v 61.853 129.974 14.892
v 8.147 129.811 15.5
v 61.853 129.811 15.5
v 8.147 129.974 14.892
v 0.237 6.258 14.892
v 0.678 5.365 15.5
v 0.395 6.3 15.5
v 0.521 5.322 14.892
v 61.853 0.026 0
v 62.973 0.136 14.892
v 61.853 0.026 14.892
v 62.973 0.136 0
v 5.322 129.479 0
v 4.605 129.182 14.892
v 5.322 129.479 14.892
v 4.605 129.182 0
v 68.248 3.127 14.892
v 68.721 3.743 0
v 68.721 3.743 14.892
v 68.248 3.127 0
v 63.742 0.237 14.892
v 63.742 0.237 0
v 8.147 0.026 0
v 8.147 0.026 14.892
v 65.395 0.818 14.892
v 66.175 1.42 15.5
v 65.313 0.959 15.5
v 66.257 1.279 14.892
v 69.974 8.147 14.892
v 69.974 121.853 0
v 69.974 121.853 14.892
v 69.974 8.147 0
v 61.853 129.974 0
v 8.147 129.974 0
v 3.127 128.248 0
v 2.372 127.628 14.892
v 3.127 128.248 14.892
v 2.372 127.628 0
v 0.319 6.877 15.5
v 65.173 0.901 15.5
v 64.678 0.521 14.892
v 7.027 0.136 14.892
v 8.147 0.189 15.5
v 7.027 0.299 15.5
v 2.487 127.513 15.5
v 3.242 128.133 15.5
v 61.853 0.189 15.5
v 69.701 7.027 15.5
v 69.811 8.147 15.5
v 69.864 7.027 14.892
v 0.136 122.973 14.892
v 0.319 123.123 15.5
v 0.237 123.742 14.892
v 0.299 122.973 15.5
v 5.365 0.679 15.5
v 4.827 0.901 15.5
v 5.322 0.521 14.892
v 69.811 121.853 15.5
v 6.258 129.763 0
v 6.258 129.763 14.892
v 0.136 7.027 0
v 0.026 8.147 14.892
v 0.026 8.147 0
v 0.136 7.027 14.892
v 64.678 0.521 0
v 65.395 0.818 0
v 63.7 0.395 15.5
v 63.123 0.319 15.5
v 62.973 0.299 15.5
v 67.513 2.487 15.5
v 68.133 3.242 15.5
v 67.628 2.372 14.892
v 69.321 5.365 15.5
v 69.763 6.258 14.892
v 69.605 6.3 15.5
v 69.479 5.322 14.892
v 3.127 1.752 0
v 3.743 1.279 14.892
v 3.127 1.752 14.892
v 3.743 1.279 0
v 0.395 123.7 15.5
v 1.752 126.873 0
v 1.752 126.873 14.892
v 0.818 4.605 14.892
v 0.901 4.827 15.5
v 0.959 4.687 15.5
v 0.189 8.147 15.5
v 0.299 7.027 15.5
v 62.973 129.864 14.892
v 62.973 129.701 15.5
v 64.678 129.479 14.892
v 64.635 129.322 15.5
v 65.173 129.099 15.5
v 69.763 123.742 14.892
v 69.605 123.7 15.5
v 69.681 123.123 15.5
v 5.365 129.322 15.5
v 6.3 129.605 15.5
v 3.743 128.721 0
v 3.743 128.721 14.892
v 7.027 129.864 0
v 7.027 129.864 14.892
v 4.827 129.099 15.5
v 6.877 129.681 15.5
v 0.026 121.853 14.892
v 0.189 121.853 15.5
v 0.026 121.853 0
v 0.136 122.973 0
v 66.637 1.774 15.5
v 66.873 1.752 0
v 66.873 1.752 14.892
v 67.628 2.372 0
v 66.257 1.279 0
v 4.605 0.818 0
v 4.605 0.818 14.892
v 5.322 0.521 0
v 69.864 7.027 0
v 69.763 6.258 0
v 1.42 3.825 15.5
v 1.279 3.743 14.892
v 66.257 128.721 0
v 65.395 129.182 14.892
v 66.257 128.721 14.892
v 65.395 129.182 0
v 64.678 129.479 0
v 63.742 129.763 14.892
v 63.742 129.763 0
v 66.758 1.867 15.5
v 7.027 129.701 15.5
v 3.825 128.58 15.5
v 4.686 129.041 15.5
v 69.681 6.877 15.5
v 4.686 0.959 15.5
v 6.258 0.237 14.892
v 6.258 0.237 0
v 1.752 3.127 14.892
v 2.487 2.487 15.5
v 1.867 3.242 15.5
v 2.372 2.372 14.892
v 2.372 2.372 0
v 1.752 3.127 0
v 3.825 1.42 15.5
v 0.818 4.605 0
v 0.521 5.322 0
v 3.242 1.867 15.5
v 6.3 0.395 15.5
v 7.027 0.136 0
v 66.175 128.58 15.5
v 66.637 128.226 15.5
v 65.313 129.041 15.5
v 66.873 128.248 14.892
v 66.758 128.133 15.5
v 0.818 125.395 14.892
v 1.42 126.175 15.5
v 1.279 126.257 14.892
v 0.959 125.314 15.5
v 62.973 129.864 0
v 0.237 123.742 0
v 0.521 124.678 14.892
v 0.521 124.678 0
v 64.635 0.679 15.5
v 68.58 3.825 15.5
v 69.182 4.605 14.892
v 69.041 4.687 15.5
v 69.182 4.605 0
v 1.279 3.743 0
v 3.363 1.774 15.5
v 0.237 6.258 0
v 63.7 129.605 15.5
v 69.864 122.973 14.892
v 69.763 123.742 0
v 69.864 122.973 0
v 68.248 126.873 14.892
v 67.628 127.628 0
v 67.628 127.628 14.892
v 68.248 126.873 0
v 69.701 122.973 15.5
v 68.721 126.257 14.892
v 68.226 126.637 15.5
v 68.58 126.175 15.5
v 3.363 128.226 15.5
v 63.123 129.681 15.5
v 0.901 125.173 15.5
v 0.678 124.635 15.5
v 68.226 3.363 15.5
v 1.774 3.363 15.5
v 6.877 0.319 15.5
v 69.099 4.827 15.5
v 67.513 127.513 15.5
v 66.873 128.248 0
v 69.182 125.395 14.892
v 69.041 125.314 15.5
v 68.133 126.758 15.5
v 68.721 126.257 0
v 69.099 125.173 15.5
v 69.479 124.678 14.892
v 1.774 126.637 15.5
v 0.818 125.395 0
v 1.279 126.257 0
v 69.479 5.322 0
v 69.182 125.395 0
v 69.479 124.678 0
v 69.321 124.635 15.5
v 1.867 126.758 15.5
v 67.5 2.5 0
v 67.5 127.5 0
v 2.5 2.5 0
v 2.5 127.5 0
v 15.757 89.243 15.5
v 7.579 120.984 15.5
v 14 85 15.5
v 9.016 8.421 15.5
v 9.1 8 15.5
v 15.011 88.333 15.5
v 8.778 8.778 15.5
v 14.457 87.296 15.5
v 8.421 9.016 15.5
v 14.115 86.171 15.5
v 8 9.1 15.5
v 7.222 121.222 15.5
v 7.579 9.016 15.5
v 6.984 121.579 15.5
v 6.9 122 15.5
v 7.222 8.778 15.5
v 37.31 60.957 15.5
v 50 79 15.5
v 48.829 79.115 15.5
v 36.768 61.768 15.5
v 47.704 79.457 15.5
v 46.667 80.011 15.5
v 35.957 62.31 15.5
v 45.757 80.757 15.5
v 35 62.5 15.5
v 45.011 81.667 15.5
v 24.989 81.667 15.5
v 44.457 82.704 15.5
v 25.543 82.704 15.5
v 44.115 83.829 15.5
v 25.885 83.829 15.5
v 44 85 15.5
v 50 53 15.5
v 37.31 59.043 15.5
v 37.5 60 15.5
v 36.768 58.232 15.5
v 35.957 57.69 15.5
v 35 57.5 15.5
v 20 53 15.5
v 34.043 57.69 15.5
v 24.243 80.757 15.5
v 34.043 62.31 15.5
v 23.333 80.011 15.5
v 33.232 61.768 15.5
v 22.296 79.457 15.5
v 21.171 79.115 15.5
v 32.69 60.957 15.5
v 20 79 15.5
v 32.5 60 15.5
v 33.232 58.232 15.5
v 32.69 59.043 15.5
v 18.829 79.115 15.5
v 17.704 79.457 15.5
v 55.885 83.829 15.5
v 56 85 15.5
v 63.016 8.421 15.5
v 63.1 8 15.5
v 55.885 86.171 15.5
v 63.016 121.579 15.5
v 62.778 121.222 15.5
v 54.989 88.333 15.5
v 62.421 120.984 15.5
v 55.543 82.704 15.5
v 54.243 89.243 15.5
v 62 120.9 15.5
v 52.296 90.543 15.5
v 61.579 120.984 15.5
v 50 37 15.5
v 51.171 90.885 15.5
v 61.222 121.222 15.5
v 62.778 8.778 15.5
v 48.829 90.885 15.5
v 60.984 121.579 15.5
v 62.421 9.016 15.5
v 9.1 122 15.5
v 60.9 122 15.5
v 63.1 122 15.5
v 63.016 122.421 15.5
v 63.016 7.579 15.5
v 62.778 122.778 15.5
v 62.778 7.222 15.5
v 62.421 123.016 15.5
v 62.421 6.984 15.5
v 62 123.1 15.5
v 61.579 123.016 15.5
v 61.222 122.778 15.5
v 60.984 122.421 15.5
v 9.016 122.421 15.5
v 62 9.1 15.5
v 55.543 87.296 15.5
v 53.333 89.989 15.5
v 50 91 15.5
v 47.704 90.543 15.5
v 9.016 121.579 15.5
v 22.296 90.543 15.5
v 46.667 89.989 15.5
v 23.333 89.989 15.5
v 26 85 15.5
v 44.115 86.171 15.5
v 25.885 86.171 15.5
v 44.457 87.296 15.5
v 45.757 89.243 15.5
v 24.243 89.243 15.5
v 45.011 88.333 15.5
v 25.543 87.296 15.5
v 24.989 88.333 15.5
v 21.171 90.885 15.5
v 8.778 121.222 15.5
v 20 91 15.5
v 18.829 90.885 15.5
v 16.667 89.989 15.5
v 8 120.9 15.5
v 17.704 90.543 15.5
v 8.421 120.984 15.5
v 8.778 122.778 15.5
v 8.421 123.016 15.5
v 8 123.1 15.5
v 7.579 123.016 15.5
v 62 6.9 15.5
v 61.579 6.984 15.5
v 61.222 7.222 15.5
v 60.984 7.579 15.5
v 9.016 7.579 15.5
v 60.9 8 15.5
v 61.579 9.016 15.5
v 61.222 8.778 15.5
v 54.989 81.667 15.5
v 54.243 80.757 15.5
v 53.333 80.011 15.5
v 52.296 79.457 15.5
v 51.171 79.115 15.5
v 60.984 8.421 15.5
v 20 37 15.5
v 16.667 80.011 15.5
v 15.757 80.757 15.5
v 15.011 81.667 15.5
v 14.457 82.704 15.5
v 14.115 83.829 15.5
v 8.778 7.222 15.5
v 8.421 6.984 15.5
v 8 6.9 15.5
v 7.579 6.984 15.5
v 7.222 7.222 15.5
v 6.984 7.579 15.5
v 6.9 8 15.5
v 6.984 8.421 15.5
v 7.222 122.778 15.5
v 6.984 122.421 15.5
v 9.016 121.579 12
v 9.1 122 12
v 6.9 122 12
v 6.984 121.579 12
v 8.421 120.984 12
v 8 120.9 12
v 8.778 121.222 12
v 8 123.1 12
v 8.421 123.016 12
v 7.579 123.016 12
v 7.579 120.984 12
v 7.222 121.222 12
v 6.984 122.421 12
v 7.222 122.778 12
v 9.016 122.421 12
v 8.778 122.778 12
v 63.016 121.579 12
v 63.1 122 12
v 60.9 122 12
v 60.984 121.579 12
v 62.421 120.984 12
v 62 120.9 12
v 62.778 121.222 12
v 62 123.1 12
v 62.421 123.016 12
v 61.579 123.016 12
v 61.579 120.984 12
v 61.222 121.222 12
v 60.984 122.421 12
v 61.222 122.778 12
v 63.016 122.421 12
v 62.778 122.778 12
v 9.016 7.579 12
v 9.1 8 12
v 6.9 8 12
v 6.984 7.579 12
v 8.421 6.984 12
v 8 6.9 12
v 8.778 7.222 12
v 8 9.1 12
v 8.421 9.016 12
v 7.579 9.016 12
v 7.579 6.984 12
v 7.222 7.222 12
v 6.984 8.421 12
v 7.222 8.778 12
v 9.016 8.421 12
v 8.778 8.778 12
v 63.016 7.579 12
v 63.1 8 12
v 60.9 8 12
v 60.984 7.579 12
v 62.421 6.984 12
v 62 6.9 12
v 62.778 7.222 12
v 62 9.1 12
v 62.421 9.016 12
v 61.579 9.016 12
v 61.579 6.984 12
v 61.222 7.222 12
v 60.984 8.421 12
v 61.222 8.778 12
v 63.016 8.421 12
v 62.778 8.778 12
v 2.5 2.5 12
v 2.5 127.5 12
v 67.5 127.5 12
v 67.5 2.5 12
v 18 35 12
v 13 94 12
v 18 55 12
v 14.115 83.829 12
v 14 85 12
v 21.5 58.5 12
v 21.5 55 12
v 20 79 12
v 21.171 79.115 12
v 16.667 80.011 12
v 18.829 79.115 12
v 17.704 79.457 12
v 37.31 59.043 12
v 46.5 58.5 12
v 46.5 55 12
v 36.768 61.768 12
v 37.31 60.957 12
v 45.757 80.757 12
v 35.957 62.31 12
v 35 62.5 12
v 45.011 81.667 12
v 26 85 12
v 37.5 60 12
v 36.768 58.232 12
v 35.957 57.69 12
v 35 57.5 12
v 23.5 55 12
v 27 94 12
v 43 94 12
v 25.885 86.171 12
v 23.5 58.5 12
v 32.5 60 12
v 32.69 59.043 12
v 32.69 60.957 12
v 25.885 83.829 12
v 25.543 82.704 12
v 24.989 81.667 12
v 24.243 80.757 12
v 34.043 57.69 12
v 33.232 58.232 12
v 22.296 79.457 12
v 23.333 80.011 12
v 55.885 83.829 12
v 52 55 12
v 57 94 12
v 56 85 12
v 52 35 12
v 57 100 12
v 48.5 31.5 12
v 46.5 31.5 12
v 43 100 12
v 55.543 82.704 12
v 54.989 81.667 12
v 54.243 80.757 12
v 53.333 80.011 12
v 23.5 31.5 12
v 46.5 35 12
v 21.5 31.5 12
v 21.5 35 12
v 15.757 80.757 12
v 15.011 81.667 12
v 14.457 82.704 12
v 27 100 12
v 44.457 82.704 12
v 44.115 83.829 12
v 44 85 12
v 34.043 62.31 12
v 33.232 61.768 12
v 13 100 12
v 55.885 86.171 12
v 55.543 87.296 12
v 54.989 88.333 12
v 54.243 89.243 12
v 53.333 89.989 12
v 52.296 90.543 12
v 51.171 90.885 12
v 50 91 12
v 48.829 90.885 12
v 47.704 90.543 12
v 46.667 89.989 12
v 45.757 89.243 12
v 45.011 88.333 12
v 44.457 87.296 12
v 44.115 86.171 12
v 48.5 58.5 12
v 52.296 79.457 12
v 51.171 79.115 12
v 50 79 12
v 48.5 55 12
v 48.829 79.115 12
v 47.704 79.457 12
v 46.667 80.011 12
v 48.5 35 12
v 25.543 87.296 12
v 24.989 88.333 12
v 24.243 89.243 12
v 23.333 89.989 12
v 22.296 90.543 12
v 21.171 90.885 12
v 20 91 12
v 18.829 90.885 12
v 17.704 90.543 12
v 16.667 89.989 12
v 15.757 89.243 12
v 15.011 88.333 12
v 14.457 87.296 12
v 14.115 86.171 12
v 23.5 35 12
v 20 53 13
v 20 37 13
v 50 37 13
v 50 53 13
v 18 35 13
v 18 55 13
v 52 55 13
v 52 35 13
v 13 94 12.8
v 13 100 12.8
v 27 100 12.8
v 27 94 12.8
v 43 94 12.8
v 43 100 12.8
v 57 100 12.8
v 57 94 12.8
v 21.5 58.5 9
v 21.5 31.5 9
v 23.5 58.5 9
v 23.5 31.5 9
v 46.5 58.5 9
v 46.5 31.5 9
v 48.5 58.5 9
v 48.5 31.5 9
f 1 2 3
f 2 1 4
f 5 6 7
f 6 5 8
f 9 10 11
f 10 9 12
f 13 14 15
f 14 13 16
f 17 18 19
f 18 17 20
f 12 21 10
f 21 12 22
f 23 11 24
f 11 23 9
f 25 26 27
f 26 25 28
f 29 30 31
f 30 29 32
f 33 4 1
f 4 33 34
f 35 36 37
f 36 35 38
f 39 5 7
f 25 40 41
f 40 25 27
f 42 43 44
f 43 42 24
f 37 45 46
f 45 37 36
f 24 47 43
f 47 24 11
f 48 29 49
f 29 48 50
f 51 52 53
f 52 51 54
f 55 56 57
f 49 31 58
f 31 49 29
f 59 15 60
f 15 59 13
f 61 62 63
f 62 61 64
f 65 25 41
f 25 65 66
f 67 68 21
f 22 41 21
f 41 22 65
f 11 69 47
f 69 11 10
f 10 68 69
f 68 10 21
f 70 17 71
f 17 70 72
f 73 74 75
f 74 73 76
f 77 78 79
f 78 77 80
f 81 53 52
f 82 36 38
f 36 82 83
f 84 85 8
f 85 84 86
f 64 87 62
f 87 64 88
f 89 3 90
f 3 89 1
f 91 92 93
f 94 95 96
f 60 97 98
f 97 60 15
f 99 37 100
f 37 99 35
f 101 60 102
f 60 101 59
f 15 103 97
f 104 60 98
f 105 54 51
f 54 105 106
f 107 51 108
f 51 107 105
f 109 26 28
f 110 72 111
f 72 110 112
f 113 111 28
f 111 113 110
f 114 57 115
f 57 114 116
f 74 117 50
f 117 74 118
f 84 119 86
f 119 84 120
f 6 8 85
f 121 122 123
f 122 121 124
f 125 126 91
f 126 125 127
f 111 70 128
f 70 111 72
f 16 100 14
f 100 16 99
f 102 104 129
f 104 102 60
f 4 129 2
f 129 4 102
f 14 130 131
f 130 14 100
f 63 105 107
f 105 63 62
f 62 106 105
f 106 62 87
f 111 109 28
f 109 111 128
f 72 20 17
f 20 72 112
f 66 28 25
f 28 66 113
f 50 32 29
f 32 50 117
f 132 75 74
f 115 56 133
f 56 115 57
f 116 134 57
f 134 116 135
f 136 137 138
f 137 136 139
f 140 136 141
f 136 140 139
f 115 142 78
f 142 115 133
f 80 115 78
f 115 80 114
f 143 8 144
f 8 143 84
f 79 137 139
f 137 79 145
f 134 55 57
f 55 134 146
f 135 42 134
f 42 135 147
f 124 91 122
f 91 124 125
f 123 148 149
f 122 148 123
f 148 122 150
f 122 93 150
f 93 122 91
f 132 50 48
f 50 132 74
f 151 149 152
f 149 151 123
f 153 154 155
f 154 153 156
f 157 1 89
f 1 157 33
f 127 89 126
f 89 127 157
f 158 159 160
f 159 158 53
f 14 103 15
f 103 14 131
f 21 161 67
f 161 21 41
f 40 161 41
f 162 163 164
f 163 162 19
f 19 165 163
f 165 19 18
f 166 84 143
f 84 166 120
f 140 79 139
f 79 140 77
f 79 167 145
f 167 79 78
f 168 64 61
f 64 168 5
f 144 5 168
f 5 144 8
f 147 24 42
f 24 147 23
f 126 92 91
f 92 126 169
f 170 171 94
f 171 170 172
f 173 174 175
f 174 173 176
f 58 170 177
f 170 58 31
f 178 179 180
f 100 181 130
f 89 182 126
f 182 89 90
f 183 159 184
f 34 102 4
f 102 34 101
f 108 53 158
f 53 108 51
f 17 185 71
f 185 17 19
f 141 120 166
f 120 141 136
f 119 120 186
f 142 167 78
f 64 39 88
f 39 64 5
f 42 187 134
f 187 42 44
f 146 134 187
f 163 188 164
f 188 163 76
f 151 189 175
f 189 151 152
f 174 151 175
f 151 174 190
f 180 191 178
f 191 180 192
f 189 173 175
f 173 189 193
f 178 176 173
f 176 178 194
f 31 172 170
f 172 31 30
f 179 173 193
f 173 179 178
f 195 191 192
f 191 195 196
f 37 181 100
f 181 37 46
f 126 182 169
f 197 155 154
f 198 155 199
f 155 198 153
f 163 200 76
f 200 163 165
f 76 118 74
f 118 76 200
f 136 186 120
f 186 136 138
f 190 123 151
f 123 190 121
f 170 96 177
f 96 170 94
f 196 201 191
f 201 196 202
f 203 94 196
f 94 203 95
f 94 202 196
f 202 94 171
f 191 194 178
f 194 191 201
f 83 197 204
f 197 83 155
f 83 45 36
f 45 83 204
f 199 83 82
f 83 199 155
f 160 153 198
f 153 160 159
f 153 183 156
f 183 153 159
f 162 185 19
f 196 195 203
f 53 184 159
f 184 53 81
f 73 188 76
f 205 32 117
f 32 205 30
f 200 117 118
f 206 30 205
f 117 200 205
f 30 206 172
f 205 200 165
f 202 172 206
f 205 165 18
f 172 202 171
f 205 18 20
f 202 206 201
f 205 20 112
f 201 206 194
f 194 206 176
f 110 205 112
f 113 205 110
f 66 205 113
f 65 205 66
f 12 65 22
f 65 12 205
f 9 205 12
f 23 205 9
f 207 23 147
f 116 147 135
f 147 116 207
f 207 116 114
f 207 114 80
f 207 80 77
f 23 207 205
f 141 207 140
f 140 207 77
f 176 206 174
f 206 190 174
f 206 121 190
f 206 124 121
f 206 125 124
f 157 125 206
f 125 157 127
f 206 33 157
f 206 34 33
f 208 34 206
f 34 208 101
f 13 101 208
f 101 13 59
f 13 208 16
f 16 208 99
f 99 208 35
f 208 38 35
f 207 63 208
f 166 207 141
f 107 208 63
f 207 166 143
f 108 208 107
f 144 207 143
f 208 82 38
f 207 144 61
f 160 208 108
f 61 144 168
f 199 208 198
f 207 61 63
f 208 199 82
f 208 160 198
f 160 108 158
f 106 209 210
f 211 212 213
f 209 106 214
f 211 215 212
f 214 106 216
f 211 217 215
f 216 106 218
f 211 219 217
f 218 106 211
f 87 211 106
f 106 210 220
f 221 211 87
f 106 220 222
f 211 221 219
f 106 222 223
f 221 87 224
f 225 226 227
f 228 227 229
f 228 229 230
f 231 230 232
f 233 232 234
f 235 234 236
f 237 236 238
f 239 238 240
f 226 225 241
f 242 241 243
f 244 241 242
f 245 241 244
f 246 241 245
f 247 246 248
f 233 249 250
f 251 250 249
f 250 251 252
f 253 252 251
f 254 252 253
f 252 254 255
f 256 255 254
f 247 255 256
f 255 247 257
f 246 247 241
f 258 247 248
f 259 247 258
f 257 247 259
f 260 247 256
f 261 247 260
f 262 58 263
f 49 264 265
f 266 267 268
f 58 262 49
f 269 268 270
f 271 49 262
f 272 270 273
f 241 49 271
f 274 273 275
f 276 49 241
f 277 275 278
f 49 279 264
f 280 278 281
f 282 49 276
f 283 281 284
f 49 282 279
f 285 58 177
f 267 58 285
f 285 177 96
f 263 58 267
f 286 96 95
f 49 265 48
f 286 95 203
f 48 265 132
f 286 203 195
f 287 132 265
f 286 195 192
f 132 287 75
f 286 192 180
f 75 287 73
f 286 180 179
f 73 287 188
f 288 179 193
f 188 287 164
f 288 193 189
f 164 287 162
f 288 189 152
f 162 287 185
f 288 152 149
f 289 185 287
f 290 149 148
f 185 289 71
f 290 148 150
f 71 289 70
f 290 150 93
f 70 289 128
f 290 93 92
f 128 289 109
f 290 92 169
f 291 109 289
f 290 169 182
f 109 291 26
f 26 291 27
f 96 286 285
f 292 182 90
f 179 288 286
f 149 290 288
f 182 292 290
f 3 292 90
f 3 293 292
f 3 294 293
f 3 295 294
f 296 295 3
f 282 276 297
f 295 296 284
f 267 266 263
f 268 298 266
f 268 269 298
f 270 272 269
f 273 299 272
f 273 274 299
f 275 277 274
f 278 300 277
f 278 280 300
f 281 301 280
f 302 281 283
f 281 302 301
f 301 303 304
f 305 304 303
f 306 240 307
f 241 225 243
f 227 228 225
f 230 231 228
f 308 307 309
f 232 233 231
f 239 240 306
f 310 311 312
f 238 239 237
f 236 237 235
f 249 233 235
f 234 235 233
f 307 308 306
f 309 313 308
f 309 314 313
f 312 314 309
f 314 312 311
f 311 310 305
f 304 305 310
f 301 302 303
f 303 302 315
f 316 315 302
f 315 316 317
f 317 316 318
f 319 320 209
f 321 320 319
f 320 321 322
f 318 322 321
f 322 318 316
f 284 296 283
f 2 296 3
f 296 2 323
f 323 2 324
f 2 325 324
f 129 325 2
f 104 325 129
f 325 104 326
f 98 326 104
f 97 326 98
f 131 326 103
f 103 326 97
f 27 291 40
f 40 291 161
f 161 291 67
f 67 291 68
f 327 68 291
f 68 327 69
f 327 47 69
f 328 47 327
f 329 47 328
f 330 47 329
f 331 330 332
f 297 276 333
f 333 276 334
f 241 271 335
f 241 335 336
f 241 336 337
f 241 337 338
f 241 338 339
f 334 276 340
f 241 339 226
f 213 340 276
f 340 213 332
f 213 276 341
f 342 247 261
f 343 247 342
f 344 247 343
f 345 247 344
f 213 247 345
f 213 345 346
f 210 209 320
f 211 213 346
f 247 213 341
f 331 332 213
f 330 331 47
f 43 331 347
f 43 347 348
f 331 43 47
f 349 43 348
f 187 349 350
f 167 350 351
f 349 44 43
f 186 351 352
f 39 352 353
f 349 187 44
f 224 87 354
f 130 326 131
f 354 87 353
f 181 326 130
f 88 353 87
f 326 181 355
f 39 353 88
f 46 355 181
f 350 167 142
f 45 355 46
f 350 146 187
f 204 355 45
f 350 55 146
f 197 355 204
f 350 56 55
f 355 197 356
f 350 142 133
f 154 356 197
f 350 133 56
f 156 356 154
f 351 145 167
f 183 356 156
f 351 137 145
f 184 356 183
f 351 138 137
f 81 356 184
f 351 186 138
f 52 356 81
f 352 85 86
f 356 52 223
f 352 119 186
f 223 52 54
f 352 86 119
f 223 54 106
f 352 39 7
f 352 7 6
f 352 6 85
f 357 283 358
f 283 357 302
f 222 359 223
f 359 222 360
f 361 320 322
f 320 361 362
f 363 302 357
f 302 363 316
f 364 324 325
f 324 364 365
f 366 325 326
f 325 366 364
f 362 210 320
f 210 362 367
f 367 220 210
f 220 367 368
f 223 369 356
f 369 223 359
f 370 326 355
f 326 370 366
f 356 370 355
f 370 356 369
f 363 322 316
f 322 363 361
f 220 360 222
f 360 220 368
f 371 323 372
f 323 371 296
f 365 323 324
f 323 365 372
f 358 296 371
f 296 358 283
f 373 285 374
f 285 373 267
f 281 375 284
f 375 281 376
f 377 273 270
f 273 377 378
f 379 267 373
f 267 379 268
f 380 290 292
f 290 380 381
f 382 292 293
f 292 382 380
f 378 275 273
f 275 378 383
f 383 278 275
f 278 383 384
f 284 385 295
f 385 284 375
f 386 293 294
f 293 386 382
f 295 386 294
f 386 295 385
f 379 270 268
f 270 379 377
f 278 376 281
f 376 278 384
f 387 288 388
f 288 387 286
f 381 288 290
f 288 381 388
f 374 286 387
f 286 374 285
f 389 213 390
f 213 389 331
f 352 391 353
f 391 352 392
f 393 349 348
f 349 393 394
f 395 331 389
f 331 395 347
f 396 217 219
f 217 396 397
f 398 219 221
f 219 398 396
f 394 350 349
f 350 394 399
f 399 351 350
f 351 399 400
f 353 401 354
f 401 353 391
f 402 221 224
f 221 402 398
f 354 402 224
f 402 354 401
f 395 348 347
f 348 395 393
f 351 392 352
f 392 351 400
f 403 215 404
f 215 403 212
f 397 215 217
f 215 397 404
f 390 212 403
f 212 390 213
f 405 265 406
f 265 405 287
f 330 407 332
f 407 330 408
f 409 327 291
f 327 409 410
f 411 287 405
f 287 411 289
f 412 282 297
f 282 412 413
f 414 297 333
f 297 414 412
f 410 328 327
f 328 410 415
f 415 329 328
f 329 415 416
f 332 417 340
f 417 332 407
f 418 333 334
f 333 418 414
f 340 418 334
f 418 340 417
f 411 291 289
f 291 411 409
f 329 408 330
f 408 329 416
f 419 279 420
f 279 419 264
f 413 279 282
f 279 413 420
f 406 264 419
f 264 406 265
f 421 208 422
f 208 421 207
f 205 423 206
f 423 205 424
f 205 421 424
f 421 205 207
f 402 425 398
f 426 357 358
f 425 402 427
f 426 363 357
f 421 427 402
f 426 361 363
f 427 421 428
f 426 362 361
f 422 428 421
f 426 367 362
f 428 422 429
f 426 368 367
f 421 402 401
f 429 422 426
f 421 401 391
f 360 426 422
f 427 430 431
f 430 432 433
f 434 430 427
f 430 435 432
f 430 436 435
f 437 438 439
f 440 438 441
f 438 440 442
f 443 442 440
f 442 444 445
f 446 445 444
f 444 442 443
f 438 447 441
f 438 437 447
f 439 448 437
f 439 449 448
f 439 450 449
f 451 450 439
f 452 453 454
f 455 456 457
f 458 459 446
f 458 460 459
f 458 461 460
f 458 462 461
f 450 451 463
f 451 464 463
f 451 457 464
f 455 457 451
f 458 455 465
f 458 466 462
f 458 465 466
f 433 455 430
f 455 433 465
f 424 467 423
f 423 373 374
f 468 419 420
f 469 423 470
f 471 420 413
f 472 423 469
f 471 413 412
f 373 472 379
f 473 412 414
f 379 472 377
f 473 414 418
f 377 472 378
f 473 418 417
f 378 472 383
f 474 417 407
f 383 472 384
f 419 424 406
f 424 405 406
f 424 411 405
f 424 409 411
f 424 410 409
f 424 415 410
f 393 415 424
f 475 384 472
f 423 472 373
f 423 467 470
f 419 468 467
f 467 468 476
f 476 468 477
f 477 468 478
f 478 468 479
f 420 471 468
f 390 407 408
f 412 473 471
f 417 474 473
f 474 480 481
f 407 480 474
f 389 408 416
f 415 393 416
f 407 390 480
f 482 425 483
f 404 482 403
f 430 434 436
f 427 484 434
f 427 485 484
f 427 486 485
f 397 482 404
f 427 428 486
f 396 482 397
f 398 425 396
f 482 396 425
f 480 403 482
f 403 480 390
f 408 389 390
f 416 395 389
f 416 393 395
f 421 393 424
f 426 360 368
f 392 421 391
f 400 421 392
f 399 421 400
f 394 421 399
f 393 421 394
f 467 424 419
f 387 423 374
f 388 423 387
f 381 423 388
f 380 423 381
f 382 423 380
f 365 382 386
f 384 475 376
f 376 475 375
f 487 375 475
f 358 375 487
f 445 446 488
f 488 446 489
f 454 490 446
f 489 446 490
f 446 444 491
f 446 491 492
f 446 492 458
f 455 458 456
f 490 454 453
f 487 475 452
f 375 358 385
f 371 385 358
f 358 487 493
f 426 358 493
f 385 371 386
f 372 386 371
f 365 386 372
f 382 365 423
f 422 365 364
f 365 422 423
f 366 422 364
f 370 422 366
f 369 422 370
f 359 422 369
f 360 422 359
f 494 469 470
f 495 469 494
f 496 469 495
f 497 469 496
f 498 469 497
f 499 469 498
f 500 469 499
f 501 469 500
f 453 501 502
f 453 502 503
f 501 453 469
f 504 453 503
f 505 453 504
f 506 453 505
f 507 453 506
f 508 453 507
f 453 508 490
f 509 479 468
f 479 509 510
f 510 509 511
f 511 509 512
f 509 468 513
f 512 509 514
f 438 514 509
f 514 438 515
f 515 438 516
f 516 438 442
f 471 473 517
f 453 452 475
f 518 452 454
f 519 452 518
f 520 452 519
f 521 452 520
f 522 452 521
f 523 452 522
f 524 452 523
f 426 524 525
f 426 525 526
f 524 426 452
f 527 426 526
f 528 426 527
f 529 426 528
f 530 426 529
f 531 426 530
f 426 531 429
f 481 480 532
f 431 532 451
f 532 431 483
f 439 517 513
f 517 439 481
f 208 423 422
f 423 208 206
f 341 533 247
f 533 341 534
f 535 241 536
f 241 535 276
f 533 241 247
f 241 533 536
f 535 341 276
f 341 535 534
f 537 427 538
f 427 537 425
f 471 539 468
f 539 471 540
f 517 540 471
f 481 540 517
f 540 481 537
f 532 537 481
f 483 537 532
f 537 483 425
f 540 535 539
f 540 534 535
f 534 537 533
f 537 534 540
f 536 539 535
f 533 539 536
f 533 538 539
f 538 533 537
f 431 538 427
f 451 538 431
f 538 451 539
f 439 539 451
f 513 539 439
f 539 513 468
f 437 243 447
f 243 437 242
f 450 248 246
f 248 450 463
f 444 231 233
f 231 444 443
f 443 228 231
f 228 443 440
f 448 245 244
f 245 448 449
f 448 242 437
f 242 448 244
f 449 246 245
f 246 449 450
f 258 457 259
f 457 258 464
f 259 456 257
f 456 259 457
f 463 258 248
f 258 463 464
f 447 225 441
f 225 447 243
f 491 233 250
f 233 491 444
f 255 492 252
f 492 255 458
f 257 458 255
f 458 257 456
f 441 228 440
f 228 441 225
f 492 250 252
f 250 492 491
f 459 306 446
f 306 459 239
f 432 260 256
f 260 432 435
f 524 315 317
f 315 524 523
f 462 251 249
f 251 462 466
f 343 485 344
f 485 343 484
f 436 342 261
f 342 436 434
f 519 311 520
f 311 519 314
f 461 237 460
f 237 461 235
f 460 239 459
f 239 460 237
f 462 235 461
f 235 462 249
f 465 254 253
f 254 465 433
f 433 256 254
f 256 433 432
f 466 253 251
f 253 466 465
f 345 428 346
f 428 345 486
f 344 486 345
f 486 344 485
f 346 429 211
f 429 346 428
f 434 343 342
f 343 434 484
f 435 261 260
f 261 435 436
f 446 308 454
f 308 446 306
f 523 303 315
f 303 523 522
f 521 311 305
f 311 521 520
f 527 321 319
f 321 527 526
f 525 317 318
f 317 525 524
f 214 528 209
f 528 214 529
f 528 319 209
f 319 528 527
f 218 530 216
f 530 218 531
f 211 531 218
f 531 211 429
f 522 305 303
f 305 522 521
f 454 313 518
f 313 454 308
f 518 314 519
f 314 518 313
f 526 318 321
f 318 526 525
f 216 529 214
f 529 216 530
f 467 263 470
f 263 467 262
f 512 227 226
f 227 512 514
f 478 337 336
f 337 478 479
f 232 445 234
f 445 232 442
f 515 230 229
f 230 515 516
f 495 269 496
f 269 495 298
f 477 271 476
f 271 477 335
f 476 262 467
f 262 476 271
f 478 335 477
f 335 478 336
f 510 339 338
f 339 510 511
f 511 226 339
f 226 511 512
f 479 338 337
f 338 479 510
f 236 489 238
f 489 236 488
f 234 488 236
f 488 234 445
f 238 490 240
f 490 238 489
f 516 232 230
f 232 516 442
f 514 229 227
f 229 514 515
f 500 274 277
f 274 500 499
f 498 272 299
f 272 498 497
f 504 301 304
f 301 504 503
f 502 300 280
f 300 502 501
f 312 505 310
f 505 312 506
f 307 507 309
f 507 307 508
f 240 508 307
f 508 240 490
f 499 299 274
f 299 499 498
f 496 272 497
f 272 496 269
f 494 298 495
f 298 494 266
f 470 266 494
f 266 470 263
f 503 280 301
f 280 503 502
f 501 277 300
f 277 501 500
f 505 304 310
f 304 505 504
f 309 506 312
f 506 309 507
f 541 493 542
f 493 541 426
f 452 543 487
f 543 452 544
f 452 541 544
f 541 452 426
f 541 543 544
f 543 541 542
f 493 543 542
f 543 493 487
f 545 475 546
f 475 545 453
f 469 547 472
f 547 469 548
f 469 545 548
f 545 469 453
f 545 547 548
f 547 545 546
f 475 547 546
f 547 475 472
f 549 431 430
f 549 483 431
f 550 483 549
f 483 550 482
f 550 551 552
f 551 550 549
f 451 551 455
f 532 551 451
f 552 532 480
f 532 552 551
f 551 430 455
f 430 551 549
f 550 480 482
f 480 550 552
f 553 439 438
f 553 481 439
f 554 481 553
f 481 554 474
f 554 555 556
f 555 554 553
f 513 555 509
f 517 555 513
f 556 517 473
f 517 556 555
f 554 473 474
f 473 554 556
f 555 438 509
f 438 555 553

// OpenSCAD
// =============================================================================
// Base Station Handheld - FRONT SHELL ONLY
// Ready to export as STL - prints face DOWN
// =============================================================================

// -----------------------------------------------------------------------------
// PARAMETERS (must match back shell!)
// -----------------------------------------------------------------------------

body_width = 70;
body_length = 130;
body_depth = 25;
wall = 2.5;
corner_radius = 8;
edge_radius = 3;
shell_tolerance = 0.3;
lip_depth = 2;

// Components
oled_window_w = 30;
oled_window_h = 16;
oled_pcb_w = 27;
oled_pcb_h = 27;
oled_pos_y = 85;

button_hole_dia = 12;
button1_x = body_width/2 - 15;
button2_x = body_width/2 + 15;
button_y = 45;

led_hole_dia = 5;
led_pos_y = 70;

post_dia = 5;
post_hole_dia = 2.2;

// Calculated
inner_width = body_width - wall*2;
inner_length = body_length - wall*2;
half_depth = body_depth / 2;

// -----------------------------------------------------------------------------
// MODULES
// -----------------------------------------------------------------------------

module rounded_rect_2d(w, l, r) {
    hull() {
        translate([r, r]) circle(r=r, $fn=32);
        translate([w-r, r]) circle(r=r, $fn=32);
        translate([r, l-r]) circle(r=r, $fn=32);
        translate([w-r, l-r]) circle(r=r, $fn=32);
    }
}

module rounded_body(w, l, d, corner_r, edge_r) {
    minkowski() {
        linear_extrude(height=d - edge_r*2)
            offset(r=-edge_r)
                rounded_rect_2d(w, l, corner_r);
        sphere(r=edge_r, $fn=24);
    }
}

module screw_hole(depth, hole_d, head_d) {
    union() {
        translate([0, 0, -1])
            cylinder(h=depth+2, d=hole_d, $fn=16);
        translate([0, 0, depth - 2])
            cylinder(h=3, d1=hole_d, d2=head_d, $fn=16);
    }
}

module button_label(w, h, depth) {
    translate([-w/2, -h/2, 0])
        cube([w, h, depth]);
}

// -----------------------------------------------------------------------------
// FRONT SHELL
// -----------------------------------------------------------------------------

module front_shell() {
    difference() {
        union() {
            intersection() {
                rounded_body(body_width, body_length, body_depth, corner_radius, edge_radius);
                translate([-1, -1, -1])
                    cube([body_width+2, body_length+2, half_depth + lip_depth + 1]);
            }
        }

        translate([wall, wall, wall])
            cube([inner_width, inner_length, half_depth + lip_depth]);

        // OLED window
        translate([body_width/2 - oled_window_w/2, oled_pos_y - oled_window_h/2, -1])
            cube([oled_window_w, oled_window_h, wall + 2]);

        // OLED recess
        translate([body_width/2 - oled_window_w/2 - 2, oled_pos_y - oled_window_h/2 - 2, wall - 1])
            cube([oled_window_w + 4, oled_window_h + 4, 2]);

        // LED hole
        translate([body_width/2, led_pos_y, -1])
            cylinder(h=wall+2, d=led_hole_dia, $fn=16);

        // Button holes
        translate([button1_x, button_y, -1])
            cylinder(h=wall+2, d=button_hole_dia, $fn=32);
        translate([button2_x, button_y, -1])
            cylinder(h=wall+2, d=button_hole_dia, $fn=32);

        // Button labels
        translate([button1_x, button_y - 12, wall - 0.8])
            button_label(14, 6, 1);
        translate([button2_x, button_y - 12, wall - 0.8])
            button_label(14, 6, 1);

        // Screw holes
        screw_inset = 8;
        translate([screw_inset, screw_inset, 0])
            screw_hole(half_depth, post_hole_dia, post_hole_dia + 3);
        translate([body_width - screw_inset, screw_inset, 0])
            screw_hole(half_depth, post_hole_dia, post_hole_dia + 3);
        translate([screw_inset, body_length - screw_inset, 0])
            screw_hole(half_depth, post_hole_dia, post_hole_dia + 3);
        translate([body_width - screw_inset, body_length - screw_inset, 0])
            screw_hole(half_depth, post_hole_dia, post_hole_dia + 3);
    }

    // OLED mounts
    oled_mount_w = oled_pcb_w + 4;
    oled_mount_h = oled_pcb_h + 4;
    translate([body_width/2 - oled_mount_w/2 + 2, oled_pos_y - oled_mount_h/2 + 2, wall])
        cube([2, oled_mount_h - 4, 3]);
    translate([body_width/2 + oled_mount_w/2 - 4, oled_pos_y - oled_mount_h/2 + 2, wall])
        cube([2, oled_mount_h - 4, 3]);
}

// -----------------------------------------------------------------------------
// RENDER - Flipped for printing (face down on bed)
// -----------------------------------------------------------------------------

rotate([180, 0, 0]) translate([0, -body_length, -half_depth - lip_depth]) front_shell();
